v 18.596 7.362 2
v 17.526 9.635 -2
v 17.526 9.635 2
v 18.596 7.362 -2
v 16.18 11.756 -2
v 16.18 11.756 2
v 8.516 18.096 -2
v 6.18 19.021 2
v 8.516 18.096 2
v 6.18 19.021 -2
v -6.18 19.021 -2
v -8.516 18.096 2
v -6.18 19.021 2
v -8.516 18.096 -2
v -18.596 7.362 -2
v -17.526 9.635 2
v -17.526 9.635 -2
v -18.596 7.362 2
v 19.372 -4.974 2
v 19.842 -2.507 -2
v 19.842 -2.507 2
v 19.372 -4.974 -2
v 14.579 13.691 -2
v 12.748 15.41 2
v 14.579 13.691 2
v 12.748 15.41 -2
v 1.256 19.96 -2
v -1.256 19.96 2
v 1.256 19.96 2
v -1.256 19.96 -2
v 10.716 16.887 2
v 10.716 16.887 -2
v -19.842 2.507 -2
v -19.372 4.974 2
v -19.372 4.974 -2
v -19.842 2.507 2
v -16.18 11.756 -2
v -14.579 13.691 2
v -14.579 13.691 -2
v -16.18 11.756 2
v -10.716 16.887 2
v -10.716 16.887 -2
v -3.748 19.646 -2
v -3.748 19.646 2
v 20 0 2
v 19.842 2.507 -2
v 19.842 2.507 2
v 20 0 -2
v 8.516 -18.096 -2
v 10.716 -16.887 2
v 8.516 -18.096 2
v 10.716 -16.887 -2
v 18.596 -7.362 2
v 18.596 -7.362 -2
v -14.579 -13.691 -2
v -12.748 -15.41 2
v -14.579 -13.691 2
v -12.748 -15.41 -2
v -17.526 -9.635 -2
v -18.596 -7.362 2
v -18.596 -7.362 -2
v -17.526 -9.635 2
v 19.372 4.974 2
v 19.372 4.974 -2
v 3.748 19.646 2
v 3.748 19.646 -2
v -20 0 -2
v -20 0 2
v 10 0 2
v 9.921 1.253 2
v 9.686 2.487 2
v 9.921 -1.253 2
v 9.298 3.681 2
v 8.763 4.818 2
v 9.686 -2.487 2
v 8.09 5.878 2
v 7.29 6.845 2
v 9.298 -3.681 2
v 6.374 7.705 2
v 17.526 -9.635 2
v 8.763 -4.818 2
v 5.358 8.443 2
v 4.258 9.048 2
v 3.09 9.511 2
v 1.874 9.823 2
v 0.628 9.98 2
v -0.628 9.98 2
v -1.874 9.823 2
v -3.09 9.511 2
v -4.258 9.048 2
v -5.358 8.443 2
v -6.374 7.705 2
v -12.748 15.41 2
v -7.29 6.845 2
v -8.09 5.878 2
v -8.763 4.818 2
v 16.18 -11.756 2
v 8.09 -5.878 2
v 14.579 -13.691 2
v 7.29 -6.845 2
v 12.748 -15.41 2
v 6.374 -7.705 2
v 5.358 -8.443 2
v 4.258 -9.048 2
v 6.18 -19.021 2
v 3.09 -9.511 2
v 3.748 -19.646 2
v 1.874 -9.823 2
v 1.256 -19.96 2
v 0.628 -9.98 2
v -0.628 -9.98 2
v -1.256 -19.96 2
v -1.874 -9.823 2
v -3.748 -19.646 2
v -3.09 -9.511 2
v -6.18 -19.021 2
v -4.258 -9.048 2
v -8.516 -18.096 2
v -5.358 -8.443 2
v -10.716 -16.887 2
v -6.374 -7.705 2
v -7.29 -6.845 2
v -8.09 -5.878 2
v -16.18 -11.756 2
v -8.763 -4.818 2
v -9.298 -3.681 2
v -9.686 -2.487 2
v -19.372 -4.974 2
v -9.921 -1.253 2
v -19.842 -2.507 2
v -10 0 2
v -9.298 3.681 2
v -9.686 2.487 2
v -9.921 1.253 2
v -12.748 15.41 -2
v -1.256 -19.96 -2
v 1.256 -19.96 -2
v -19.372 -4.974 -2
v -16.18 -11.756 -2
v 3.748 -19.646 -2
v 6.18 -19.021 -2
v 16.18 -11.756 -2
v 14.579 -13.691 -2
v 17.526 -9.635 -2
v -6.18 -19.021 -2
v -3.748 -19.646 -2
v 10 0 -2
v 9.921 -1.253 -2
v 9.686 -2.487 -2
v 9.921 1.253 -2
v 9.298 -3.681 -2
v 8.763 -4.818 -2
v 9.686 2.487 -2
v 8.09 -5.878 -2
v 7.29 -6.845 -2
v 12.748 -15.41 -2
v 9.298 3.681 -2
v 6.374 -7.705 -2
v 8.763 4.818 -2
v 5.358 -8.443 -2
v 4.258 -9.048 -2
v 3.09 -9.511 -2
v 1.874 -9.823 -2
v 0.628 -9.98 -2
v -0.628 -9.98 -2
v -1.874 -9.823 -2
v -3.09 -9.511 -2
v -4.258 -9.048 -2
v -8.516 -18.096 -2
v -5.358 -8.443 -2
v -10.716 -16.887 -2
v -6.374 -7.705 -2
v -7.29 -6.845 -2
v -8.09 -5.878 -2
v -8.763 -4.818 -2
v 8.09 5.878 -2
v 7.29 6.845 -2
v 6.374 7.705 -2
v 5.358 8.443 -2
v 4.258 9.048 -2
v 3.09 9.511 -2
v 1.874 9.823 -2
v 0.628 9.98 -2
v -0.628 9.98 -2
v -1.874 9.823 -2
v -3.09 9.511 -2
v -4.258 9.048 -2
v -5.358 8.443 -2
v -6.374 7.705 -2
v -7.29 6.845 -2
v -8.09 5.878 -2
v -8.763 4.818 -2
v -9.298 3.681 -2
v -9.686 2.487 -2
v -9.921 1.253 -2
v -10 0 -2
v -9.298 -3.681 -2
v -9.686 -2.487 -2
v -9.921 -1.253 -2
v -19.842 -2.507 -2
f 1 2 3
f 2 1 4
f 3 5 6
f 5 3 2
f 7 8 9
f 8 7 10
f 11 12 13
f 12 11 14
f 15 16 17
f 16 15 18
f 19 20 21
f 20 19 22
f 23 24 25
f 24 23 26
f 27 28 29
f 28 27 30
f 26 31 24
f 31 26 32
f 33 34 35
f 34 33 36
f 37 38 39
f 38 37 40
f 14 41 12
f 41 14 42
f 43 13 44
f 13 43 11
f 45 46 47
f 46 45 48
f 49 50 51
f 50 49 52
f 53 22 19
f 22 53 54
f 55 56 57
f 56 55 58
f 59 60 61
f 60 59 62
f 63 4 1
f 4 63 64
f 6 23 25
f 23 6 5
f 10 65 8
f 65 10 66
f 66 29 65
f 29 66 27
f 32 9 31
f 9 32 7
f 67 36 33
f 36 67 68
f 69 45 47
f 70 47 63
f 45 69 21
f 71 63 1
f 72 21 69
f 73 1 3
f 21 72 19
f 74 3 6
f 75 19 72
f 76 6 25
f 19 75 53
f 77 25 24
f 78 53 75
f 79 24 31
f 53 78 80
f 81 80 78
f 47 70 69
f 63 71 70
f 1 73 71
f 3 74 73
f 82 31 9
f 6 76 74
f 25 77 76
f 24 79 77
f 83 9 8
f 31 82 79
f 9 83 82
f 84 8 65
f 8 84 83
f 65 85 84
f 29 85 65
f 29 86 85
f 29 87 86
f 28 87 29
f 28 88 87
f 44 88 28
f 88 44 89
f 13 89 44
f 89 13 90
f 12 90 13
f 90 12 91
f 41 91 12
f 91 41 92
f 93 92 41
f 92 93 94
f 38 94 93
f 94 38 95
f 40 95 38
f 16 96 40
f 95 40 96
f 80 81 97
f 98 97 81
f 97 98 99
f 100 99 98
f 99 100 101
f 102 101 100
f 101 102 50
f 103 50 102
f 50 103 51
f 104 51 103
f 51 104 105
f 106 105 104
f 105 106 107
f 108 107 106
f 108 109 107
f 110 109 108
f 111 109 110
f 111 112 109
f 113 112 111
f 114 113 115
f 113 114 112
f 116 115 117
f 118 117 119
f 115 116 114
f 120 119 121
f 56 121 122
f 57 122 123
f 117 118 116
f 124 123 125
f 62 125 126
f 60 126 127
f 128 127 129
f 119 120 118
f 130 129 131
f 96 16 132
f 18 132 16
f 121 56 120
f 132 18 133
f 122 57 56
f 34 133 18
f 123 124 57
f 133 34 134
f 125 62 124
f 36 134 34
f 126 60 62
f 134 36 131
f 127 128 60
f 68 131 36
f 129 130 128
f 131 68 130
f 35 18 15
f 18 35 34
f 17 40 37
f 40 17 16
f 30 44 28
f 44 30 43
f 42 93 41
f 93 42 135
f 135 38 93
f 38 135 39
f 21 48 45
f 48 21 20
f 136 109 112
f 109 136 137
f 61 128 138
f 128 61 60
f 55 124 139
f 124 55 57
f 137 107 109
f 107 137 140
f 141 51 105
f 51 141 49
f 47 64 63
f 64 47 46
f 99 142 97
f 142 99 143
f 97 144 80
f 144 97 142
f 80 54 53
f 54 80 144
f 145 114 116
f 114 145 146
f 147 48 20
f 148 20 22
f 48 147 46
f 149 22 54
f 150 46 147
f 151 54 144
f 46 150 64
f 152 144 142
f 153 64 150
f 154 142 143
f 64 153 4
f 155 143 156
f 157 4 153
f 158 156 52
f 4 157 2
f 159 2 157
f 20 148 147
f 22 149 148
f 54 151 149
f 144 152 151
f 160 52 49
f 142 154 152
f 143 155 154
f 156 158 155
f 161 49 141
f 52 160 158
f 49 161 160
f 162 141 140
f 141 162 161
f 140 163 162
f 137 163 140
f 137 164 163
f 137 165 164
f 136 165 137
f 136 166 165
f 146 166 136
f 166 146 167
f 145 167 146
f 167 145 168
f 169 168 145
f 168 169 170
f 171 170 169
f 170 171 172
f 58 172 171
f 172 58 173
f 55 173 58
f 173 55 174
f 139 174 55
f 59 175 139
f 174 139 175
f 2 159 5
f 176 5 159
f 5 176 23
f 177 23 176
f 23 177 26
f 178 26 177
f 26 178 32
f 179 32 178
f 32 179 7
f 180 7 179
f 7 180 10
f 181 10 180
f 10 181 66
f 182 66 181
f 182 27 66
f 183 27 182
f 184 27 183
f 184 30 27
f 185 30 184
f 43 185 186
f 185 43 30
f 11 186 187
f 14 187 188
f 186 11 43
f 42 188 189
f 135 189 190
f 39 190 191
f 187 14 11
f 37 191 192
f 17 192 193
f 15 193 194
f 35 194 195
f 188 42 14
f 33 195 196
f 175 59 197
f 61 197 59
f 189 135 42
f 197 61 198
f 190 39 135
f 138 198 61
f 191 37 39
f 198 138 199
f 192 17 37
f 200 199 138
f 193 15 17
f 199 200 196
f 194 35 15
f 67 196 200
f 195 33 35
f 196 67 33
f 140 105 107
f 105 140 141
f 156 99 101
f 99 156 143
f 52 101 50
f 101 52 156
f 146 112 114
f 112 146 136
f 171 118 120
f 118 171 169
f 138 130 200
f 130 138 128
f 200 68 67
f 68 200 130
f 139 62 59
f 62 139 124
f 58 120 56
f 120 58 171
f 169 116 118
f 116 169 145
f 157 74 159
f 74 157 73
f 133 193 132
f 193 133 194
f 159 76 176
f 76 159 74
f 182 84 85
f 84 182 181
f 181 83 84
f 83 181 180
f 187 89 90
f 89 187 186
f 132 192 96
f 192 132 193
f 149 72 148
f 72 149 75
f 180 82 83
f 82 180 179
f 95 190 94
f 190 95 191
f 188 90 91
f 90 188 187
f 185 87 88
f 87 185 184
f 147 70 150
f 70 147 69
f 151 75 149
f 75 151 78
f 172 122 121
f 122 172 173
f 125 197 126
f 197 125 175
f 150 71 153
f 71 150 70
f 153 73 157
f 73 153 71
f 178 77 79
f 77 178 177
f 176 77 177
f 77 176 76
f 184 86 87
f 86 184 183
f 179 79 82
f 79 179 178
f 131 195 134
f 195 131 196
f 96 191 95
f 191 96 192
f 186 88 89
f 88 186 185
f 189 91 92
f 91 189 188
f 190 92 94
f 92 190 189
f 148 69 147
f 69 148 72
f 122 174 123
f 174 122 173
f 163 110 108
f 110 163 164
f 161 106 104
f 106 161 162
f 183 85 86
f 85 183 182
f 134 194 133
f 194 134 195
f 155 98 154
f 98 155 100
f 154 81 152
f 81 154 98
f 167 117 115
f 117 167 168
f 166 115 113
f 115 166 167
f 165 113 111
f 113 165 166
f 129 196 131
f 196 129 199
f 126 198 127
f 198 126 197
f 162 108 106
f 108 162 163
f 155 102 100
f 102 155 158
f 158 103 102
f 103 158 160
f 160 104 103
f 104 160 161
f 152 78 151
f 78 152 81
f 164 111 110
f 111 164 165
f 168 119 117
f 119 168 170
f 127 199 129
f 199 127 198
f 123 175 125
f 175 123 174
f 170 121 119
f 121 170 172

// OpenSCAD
$fn = 50;


difference() {
	union() {
		translate(v = [0, 0, -2.0000000000]) {
			cylinder(h = 4, r = 20.0000000000);
		}
	}
	union() {
		translate(v = [0, 0, -100.0000000000]) {
			cylinder(h = 200, r = 10);
		}
	}
}
